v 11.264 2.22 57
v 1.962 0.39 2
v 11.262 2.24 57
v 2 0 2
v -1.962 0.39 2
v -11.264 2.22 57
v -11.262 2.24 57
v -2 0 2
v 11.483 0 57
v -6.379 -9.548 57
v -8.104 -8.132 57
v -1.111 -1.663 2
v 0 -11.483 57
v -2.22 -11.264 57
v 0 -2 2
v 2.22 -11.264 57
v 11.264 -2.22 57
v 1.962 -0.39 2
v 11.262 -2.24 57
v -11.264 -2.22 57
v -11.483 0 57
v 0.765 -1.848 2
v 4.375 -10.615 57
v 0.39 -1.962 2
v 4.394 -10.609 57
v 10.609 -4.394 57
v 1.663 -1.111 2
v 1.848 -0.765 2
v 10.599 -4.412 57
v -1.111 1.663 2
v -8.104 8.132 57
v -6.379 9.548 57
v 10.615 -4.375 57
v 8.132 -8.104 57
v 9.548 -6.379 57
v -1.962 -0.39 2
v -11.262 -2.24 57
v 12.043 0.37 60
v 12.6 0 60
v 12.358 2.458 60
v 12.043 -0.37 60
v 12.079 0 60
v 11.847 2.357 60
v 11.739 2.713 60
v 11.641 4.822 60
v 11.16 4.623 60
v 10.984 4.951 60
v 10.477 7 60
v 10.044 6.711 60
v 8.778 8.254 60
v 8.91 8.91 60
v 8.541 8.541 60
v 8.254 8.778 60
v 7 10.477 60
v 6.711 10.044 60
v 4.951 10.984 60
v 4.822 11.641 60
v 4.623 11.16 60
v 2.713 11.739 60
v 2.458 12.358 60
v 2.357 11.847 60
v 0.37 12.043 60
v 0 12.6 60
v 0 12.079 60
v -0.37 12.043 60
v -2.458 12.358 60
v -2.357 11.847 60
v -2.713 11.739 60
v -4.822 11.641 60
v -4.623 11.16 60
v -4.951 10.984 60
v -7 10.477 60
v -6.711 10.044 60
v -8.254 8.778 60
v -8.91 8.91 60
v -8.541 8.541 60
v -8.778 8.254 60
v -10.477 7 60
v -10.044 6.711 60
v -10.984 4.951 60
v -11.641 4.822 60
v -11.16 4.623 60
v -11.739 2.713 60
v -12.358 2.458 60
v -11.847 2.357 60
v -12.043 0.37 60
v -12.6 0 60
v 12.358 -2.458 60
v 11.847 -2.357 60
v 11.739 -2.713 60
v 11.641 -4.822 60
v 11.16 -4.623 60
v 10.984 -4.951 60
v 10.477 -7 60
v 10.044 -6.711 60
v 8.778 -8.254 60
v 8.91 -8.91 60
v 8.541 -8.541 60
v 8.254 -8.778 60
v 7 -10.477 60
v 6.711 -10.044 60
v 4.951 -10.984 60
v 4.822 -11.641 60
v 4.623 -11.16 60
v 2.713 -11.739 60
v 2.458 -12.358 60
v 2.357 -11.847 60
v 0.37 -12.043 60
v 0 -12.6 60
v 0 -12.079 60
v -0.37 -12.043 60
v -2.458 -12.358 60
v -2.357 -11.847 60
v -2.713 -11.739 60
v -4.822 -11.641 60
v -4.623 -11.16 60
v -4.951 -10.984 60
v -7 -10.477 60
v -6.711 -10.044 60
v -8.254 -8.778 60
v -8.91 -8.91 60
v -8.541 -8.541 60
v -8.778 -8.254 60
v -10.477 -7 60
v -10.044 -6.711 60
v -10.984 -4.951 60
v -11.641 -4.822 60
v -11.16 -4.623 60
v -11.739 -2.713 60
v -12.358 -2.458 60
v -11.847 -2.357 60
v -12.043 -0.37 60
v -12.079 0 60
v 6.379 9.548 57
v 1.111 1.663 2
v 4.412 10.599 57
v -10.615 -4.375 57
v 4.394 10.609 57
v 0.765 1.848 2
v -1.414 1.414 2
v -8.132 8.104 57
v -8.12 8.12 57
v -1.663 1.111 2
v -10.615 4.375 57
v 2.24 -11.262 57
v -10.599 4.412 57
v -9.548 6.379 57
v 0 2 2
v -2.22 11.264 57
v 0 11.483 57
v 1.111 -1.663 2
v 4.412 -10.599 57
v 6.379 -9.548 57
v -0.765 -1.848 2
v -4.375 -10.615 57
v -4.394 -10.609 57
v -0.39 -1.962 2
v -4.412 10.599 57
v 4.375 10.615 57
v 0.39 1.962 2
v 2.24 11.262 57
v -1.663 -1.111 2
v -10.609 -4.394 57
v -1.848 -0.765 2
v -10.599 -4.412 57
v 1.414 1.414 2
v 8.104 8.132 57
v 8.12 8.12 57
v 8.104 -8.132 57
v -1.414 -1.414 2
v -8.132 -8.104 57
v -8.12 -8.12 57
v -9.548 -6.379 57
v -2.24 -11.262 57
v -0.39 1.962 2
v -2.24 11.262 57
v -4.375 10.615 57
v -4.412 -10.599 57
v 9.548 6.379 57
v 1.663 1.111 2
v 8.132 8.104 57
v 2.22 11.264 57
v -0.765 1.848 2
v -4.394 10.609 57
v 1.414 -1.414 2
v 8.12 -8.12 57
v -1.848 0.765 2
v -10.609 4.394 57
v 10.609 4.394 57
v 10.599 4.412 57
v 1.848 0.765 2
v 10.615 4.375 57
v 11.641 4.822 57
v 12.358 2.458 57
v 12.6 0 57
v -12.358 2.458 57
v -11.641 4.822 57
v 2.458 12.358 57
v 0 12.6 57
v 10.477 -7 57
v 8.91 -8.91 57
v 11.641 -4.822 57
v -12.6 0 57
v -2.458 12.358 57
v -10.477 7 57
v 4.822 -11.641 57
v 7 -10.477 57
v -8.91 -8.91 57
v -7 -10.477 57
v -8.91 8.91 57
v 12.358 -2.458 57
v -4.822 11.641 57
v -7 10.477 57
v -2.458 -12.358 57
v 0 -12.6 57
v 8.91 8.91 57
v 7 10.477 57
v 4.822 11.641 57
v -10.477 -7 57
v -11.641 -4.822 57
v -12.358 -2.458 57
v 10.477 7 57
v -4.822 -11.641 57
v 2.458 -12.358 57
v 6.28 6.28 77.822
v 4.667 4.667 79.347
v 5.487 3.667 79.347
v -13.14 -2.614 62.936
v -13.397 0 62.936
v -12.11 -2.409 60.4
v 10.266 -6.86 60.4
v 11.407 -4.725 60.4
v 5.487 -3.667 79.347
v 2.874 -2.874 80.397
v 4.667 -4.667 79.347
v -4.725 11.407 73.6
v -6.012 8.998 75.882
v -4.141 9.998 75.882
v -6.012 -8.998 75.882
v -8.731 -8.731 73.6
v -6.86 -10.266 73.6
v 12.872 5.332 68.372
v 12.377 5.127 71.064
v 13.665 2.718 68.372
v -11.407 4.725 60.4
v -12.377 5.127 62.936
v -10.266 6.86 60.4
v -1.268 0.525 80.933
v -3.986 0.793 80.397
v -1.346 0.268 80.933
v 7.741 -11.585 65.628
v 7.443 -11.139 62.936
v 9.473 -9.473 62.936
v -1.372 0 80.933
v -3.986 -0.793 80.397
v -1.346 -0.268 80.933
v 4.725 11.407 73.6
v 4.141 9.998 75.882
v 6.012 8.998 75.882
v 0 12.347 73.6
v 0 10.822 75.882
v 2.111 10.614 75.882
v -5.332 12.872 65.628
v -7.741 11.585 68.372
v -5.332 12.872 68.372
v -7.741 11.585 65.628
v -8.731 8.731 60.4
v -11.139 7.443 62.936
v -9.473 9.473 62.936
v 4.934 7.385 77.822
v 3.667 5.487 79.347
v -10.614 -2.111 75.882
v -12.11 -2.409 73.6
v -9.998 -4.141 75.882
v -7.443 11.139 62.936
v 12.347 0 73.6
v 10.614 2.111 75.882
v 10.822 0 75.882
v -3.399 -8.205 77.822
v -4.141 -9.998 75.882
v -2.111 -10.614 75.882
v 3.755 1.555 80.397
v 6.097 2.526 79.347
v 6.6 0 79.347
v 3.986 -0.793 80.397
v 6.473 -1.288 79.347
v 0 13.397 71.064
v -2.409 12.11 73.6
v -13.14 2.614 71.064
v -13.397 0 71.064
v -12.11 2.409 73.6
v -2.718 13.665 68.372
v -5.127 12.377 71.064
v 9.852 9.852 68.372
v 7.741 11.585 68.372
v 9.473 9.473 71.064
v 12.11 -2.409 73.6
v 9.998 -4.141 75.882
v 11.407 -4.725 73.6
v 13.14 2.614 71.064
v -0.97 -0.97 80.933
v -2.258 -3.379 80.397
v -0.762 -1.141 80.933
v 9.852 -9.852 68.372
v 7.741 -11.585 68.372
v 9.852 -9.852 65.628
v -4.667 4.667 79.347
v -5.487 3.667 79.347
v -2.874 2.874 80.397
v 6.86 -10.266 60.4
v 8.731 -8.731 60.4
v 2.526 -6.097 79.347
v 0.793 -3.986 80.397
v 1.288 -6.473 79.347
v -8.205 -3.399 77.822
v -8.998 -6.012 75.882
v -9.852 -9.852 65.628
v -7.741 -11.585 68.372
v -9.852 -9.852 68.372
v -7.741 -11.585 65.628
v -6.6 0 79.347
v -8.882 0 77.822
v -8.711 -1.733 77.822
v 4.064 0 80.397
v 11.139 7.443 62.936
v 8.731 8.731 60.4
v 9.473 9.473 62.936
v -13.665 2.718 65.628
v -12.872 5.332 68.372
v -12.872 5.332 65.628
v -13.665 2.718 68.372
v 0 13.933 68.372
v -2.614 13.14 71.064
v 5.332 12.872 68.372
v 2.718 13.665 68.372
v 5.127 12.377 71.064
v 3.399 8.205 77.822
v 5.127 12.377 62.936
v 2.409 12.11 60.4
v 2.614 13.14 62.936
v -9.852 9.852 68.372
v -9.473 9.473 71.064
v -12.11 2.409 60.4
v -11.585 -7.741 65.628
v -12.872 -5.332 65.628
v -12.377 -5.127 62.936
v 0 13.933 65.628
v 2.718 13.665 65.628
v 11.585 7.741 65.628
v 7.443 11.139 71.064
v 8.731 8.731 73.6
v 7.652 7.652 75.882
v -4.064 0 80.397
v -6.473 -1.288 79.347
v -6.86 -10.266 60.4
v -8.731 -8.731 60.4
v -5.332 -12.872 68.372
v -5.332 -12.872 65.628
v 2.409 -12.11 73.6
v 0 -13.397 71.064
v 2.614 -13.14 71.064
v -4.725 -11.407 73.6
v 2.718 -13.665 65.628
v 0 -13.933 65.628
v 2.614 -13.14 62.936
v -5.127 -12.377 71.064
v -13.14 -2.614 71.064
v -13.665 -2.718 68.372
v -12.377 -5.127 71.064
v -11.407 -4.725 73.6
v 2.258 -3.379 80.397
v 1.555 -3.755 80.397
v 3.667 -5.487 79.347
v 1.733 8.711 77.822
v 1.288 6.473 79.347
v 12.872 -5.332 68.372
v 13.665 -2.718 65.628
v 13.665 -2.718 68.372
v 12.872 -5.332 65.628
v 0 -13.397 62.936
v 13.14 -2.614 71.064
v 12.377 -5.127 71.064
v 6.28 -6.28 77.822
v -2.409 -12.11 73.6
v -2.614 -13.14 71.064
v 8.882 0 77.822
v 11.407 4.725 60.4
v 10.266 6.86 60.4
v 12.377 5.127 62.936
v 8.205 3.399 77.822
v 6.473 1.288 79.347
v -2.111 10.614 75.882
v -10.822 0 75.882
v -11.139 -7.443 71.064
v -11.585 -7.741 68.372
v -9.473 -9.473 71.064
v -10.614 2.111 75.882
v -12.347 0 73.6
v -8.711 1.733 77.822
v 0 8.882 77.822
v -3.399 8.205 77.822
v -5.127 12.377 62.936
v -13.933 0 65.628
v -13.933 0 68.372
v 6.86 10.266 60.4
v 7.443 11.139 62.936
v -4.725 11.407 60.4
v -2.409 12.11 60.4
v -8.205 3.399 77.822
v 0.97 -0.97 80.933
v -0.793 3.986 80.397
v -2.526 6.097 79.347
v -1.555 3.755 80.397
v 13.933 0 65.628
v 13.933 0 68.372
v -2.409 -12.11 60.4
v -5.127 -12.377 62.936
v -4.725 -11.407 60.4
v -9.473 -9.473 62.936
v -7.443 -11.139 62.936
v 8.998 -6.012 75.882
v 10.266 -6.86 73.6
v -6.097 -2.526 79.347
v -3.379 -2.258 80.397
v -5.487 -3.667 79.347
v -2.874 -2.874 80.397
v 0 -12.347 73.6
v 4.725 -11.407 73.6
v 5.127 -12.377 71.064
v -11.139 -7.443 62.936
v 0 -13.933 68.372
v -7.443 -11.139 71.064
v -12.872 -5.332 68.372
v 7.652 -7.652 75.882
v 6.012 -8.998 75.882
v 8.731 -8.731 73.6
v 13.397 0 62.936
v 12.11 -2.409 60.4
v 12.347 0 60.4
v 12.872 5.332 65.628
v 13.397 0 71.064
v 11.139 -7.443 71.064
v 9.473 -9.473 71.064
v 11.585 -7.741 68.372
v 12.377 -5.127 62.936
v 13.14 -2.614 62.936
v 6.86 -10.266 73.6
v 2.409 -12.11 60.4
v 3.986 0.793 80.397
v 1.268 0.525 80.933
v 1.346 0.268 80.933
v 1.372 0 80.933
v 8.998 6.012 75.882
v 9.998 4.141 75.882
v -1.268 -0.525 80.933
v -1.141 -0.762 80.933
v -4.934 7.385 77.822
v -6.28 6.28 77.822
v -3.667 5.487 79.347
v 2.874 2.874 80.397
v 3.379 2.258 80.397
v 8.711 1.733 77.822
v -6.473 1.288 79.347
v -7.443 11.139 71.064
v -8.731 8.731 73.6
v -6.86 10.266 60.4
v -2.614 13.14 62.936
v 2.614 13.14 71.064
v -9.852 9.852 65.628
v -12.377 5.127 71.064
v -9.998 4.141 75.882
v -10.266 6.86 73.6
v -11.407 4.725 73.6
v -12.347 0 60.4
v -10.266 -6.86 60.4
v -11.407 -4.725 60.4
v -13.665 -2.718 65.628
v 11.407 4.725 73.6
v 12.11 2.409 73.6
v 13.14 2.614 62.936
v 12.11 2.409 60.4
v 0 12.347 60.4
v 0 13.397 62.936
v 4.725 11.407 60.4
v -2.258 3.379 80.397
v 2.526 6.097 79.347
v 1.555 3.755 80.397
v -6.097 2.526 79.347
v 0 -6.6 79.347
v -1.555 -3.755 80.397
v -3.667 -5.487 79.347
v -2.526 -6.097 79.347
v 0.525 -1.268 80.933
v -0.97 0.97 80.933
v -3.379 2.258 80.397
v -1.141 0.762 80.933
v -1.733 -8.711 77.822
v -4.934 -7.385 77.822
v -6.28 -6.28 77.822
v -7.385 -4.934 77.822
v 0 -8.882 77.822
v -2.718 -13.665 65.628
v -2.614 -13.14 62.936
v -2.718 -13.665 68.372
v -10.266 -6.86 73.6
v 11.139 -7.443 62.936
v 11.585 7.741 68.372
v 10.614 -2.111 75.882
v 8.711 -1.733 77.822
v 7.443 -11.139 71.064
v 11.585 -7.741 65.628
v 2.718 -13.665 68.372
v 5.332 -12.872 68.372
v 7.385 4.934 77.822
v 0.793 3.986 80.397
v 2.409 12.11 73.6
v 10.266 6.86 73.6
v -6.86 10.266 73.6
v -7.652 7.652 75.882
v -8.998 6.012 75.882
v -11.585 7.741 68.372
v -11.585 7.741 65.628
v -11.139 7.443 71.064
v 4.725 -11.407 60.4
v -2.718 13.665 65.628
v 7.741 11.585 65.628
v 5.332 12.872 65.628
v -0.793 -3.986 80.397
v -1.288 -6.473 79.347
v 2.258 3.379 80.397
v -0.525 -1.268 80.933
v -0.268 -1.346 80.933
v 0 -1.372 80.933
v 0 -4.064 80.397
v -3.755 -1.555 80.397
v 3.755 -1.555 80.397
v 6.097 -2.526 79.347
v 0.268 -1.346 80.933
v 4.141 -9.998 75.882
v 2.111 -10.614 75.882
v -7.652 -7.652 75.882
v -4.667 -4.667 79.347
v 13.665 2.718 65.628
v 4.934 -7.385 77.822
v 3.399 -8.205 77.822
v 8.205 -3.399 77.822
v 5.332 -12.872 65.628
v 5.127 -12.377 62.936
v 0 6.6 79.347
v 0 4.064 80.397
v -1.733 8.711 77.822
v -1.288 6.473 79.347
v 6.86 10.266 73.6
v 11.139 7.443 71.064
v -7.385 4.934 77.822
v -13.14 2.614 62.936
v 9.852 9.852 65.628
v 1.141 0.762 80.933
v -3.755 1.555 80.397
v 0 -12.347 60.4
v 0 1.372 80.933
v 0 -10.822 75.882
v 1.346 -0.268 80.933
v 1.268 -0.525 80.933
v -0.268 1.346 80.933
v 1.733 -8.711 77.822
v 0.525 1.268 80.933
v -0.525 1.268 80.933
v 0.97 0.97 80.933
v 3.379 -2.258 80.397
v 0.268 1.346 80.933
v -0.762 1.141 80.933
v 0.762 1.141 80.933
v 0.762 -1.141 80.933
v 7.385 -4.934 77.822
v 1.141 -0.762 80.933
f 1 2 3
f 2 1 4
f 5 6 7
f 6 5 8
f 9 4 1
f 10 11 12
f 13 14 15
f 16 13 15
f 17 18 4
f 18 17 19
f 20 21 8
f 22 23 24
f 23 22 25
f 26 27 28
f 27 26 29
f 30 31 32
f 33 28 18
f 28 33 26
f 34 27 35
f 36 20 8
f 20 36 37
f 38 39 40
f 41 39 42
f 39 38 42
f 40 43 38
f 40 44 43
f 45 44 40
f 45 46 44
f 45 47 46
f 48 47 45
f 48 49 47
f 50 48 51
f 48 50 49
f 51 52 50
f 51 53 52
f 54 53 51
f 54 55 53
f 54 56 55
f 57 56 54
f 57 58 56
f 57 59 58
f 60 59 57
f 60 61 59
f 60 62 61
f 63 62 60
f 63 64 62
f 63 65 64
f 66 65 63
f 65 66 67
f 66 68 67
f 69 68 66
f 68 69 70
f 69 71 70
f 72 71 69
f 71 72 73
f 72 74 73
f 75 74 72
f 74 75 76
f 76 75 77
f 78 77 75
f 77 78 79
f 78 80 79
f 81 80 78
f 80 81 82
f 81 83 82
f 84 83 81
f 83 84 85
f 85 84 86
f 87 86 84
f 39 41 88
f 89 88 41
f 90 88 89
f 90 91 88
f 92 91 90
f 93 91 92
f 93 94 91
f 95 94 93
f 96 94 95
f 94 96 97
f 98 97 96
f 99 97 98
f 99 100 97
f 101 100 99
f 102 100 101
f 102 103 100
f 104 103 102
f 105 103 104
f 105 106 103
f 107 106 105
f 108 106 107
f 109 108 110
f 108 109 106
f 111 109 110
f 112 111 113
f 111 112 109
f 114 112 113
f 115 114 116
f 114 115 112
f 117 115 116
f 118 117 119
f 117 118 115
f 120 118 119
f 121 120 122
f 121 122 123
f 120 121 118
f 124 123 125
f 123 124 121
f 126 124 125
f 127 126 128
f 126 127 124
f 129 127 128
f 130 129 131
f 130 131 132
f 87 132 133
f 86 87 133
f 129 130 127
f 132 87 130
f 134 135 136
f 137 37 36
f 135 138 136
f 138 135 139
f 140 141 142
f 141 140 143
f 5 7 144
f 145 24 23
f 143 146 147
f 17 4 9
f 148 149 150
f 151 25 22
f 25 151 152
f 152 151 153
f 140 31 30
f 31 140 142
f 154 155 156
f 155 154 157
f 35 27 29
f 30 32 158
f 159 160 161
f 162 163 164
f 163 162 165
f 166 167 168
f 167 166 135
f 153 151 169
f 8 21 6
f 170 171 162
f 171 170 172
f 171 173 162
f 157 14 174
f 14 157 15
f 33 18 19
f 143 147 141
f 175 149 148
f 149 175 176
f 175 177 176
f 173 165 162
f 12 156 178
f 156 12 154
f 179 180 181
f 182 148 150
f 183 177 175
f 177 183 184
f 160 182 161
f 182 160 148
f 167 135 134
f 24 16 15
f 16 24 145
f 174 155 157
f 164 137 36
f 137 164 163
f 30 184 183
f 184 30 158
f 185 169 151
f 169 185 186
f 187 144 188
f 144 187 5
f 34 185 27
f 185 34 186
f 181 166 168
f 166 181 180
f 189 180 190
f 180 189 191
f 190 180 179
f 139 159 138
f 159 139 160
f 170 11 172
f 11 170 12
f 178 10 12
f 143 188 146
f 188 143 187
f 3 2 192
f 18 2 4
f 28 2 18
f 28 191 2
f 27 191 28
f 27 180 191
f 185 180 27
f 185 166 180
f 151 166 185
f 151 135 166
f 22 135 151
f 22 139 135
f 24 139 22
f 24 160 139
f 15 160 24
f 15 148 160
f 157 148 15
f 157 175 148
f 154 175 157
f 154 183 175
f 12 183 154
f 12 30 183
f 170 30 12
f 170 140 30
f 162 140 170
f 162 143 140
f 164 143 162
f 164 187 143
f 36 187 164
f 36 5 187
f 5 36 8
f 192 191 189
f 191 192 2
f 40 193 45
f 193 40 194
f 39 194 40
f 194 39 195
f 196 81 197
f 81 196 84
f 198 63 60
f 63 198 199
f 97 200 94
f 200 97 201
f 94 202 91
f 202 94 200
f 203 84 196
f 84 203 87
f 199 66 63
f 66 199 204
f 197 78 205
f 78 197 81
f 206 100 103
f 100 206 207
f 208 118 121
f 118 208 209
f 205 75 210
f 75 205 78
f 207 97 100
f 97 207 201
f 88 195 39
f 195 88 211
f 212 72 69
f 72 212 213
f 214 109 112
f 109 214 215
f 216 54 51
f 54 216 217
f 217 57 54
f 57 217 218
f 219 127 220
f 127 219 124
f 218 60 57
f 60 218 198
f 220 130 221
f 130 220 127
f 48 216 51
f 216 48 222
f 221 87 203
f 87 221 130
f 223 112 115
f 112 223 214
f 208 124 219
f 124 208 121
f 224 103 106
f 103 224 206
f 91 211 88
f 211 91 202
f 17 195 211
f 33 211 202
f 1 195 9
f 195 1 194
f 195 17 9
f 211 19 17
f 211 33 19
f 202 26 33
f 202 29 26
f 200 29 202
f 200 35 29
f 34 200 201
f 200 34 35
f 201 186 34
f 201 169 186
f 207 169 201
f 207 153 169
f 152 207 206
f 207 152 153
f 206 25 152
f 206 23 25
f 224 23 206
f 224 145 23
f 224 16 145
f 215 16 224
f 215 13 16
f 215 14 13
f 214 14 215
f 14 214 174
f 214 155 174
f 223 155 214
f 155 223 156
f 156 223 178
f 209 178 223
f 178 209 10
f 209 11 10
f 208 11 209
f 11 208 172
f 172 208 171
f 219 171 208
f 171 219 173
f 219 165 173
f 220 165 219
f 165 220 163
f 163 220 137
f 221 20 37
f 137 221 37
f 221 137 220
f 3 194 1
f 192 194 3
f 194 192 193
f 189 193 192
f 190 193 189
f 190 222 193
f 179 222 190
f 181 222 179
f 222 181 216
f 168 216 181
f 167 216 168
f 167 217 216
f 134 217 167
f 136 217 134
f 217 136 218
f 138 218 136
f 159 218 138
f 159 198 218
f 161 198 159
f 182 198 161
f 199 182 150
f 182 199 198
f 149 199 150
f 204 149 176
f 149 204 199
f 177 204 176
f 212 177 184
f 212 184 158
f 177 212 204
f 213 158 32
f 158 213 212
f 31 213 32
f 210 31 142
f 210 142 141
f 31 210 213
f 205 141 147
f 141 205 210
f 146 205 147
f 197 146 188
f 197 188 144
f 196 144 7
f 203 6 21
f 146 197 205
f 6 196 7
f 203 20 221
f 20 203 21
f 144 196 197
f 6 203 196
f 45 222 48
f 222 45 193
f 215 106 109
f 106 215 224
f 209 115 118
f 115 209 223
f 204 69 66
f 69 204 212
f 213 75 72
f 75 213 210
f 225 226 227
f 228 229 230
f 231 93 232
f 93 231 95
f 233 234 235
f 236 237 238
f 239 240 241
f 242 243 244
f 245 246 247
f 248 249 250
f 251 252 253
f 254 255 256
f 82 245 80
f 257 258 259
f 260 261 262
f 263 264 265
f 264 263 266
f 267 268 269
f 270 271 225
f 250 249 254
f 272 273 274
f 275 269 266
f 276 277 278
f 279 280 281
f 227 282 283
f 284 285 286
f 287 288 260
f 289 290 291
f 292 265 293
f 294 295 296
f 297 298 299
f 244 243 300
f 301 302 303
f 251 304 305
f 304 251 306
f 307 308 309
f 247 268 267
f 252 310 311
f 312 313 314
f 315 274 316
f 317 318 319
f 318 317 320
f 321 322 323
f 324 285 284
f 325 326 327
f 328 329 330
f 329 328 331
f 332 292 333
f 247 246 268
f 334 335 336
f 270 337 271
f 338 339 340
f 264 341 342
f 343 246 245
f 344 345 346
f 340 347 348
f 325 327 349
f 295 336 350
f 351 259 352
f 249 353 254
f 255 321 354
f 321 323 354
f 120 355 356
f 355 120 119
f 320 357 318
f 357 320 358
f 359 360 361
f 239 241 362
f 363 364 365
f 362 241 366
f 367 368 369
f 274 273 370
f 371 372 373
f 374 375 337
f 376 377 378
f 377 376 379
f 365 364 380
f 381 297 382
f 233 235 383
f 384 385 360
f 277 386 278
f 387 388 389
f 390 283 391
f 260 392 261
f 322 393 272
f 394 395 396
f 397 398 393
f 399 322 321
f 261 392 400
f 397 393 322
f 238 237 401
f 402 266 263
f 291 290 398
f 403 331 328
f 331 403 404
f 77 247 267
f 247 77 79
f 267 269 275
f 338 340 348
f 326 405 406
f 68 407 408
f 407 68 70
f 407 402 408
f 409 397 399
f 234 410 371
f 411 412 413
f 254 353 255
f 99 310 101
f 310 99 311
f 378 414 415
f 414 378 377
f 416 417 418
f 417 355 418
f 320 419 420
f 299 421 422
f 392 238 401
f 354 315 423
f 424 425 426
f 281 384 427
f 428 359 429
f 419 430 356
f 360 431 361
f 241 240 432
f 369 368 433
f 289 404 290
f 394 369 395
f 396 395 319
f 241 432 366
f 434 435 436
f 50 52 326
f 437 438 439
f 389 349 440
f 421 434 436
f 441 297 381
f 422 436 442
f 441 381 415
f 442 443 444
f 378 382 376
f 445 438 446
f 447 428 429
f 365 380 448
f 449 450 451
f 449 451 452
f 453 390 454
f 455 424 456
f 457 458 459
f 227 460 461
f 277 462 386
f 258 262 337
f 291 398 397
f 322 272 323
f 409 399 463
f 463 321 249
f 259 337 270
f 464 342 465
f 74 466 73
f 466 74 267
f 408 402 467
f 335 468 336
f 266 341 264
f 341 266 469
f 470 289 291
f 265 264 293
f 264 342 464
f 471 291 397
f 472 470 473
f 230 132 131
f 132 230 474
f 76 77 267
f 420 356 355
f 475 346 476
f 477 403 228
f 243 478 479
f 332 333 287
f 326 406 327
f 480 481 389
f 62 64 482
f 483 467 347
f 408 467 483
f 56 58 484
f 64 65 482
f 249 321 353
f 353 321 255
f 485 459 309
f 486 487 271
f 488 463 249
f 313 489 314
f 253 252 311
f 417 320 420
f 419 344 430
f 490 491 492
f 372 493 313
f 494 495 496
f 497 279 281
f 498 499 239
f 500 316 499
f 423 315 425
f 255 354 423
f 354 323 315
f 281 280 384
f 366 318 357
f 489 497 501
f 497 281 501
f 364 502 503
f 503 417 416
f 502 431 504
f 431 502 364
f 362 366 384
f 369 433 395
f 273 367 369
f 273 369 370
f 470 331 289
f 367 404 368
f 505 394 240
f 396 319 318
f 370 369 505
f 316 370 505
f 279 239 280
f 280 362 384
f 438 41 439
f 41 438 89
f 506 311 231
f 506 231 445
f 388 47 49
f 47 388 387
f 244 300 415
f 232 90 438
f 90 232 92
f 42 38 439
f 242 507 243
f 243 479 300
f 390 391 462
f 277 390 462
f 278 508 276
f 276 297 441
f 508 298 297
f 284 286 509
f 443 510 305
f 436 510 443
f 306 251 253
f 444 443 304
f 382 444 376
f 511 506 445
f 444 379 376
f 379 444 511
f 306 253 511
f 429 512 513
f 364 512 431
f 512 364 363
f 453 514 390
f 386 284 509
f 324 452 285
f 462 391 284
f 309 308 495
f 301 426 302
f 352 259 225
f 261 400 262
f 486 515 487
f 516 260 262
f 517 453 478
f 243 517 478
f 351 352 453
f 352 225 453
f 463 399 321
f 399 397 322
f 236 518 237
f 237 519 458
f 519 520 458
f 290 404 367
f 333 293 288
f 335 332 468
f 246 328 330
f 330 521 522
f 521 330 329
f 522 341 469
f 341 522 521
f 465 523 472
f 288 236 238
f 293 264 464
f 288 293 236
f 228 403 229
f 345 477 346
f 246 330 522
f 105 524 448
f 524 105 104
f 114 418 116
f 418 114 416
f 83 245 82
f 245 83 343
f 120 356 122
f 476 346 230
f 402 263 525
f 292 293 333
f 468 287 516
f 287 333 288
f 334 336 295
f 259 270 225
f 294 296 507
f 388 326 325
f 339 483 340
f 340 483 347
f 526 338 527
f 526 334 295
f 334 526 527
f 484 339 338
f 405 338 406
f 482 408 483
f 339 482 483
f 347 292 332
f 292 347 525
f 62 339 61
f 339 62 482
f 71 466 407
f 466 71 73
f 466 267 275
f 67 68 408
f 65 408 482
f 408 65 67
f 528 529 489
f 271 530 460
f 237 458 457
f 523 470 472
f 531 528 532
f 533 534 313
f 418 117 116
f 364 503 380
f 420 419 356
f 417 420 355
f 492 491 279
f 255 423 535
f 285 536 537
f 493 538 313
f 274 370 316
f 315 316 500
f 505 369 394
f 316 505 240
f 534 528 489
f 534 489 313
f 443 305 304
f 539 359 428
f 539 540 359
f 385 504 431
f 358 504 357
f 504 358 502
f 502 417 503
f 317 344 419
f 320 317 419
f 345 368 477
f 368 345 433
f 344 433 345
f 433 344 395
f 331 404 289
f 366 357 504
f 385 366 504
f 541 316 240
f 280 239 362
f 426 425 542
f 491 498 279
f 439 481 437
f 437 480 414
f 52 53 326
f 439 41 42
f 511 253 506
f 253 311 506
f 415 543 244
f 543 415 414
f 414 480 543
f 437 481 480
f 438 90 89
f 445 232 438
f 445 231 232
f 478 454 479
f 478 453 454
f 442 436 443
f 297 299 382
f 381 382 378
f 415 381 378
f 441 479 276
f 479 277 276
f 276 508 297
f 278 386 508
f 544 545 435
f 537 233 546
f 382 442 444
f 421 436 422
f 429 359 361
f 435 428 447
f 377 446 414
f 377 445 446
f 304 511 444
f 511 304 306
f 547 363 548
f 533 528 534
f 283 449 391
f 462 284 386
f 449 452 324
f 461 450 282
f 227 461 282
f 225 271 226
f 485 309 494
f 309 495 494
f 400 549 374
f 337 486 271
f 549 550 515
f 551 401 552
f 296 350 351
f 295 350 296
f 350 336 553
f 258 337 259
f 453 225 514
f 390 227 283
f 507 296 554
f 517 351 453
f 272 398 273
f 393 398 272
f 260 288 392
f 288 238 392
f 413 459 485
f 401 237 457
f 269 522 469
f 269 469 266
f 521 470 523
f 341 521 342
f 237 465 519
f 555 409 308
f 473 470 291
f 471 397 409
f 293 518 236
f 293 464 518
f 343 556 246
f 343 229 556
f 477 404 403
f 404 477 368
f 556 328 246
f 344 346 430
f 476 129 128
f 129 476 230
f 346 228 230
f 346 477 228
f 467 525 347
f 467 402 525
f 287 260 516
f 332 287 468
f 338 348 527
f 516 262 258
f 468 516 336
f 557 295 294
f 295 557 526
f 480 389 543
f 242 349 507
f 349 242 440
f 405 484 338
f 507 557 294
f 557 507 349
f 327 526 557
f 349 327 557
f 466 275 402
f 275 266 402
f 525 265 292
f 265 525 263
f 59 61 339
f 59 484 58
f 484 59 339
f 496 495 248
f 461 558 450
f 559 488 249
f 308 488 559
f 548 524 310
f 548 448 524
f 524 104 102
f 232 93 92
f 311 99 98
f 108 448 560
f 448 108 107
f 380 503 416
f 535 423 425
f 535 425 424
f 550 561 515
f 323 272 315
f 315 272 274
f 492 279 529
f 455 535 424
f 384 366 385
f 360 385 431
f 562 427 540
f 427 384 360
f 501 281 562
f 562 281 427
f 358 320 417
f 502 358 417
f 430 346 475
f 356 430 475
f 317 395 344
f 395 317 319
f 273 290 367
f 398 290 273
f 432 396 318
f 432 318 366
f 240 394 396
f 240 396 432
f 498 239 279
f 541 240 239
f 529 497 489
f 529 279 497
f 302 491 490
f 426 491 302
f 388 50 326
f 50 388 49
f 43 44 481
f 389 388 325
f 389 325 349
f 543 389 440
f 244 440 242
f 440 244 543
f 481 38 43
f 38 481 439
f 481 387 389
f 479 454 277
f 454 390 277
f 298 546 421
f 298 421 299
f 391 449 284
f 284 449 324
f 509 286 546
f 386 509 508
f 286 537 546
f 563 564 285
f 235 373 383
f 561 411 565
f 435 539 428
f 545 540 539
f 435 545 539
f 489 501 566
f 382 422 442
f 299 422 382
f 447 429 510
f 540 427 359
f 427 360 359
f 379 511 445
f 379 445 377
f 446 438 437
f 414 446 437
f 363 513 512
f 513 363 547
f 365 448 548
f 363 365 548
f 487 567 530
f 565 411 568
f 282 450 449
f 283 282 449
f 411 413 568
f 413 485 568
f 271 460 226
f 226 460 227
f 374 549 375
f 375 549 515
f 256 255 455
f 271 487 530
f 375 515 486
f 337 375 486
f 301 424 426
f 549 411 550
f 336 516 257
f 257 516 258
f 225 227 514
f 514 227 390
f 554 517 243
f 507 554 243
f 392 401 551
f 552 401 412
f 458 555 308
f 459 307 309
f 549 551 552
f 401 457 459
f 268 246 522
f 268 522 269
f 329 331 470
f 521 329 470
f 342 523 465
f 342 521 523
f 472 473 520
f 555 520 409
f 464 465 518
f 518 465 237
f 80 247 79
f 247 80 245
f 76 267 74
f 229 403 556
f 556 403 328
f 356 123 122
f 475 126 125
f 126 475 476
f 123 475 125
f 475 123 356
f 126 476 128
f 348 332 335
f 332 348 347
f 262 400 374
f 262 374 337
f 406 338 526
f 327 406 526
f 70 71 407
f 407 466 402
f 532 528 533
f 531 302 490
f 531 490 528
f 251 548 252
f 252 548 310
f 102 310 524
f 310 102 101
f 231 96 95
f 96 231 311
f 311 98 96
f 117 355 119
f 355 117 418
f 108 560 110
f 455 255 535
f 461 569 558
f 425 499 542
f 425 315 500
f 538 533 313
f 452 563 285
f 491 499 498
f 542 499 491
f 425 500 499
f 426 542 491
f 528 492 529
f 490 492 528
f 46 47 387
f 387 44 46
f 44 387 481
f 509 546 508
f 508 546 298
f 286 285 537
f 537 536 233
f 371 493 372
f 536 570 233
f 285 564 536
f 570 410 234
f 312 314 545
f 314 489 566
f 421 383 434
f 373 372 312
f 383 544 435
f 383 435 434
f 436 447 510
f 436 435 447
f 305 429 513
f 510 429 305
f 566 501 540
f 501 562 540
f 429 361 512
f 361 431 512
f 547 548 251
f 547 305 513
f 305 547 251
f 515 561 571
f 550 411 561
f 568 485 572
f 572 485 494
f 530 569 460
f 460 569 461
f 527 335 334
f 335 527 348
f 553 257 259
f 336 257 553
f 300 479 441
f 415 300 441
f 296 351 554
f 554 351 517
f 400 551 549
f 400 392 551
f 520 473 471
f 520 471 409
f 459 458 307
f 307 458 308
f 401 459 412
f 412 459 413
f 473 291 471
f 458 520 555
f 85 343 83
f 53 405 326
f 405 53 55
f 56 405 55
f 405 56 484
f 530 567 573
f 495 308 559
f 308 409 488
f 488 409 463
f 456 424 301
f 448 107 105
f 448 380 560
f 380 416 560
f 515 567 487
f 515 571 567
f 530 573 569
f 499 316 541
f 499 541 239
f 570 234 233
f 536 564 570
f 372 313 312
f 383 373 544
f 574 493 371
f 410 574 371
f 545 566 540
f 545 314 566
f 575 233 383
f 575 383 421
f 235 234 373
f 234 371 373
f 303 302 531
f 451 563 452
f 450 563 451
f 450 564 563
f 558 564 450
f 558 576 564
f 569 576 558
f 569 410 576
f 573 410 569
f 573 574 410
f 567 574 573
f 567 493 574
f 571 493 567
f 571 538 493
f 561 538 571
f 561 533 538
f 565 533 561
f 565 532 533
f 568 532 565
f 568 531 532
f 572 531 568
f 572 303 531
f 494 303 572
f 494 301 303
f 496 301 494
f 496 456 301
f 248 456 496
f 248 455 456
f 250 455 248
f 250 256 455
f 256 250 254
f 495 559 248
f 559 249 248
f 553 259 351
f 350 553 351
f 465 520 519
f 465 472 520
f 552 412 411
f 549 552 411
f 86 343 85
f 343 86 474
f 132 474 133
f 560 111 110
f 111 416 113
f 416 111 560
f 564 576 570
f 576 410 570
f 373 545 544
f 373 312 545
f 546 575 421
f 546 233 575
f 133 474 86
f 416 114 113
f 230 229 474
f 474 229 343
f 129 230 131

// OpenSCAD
$fn = 32;

// Ice Cream Cone: waffle cone + ice cream scoop + cherry
cone_h     = 60;   // cone height
cone_bot_r = 2;    // tip radius
cone_top_r = 12;   // opening radius
scoop_r    = 14;   // scoop radius
scoop_z    = cone_h + 7;
cherry_r   = 3.5;

union() {
    // waffle cone (tapered frustum, tip at the bottom)
    translate([0, 0, 2])
        cylinder(r1 = cone_bot_r, r2 = cone_top_r, h = cone_h - 2);

    // rolled rim band at the cone opening
    translate([0, 0, cone_h - 3])
        cylinder(r = cone_top_r + 0.6, h = 3);

    // ice cream scoop
    translate([0, 0, scoop_z])
        sphere(r = scoop_r);

    // cherry on top
    translate([0, 0, scoop_z + scoop_r - 5])
        sphere(r = cherry_r);
}
